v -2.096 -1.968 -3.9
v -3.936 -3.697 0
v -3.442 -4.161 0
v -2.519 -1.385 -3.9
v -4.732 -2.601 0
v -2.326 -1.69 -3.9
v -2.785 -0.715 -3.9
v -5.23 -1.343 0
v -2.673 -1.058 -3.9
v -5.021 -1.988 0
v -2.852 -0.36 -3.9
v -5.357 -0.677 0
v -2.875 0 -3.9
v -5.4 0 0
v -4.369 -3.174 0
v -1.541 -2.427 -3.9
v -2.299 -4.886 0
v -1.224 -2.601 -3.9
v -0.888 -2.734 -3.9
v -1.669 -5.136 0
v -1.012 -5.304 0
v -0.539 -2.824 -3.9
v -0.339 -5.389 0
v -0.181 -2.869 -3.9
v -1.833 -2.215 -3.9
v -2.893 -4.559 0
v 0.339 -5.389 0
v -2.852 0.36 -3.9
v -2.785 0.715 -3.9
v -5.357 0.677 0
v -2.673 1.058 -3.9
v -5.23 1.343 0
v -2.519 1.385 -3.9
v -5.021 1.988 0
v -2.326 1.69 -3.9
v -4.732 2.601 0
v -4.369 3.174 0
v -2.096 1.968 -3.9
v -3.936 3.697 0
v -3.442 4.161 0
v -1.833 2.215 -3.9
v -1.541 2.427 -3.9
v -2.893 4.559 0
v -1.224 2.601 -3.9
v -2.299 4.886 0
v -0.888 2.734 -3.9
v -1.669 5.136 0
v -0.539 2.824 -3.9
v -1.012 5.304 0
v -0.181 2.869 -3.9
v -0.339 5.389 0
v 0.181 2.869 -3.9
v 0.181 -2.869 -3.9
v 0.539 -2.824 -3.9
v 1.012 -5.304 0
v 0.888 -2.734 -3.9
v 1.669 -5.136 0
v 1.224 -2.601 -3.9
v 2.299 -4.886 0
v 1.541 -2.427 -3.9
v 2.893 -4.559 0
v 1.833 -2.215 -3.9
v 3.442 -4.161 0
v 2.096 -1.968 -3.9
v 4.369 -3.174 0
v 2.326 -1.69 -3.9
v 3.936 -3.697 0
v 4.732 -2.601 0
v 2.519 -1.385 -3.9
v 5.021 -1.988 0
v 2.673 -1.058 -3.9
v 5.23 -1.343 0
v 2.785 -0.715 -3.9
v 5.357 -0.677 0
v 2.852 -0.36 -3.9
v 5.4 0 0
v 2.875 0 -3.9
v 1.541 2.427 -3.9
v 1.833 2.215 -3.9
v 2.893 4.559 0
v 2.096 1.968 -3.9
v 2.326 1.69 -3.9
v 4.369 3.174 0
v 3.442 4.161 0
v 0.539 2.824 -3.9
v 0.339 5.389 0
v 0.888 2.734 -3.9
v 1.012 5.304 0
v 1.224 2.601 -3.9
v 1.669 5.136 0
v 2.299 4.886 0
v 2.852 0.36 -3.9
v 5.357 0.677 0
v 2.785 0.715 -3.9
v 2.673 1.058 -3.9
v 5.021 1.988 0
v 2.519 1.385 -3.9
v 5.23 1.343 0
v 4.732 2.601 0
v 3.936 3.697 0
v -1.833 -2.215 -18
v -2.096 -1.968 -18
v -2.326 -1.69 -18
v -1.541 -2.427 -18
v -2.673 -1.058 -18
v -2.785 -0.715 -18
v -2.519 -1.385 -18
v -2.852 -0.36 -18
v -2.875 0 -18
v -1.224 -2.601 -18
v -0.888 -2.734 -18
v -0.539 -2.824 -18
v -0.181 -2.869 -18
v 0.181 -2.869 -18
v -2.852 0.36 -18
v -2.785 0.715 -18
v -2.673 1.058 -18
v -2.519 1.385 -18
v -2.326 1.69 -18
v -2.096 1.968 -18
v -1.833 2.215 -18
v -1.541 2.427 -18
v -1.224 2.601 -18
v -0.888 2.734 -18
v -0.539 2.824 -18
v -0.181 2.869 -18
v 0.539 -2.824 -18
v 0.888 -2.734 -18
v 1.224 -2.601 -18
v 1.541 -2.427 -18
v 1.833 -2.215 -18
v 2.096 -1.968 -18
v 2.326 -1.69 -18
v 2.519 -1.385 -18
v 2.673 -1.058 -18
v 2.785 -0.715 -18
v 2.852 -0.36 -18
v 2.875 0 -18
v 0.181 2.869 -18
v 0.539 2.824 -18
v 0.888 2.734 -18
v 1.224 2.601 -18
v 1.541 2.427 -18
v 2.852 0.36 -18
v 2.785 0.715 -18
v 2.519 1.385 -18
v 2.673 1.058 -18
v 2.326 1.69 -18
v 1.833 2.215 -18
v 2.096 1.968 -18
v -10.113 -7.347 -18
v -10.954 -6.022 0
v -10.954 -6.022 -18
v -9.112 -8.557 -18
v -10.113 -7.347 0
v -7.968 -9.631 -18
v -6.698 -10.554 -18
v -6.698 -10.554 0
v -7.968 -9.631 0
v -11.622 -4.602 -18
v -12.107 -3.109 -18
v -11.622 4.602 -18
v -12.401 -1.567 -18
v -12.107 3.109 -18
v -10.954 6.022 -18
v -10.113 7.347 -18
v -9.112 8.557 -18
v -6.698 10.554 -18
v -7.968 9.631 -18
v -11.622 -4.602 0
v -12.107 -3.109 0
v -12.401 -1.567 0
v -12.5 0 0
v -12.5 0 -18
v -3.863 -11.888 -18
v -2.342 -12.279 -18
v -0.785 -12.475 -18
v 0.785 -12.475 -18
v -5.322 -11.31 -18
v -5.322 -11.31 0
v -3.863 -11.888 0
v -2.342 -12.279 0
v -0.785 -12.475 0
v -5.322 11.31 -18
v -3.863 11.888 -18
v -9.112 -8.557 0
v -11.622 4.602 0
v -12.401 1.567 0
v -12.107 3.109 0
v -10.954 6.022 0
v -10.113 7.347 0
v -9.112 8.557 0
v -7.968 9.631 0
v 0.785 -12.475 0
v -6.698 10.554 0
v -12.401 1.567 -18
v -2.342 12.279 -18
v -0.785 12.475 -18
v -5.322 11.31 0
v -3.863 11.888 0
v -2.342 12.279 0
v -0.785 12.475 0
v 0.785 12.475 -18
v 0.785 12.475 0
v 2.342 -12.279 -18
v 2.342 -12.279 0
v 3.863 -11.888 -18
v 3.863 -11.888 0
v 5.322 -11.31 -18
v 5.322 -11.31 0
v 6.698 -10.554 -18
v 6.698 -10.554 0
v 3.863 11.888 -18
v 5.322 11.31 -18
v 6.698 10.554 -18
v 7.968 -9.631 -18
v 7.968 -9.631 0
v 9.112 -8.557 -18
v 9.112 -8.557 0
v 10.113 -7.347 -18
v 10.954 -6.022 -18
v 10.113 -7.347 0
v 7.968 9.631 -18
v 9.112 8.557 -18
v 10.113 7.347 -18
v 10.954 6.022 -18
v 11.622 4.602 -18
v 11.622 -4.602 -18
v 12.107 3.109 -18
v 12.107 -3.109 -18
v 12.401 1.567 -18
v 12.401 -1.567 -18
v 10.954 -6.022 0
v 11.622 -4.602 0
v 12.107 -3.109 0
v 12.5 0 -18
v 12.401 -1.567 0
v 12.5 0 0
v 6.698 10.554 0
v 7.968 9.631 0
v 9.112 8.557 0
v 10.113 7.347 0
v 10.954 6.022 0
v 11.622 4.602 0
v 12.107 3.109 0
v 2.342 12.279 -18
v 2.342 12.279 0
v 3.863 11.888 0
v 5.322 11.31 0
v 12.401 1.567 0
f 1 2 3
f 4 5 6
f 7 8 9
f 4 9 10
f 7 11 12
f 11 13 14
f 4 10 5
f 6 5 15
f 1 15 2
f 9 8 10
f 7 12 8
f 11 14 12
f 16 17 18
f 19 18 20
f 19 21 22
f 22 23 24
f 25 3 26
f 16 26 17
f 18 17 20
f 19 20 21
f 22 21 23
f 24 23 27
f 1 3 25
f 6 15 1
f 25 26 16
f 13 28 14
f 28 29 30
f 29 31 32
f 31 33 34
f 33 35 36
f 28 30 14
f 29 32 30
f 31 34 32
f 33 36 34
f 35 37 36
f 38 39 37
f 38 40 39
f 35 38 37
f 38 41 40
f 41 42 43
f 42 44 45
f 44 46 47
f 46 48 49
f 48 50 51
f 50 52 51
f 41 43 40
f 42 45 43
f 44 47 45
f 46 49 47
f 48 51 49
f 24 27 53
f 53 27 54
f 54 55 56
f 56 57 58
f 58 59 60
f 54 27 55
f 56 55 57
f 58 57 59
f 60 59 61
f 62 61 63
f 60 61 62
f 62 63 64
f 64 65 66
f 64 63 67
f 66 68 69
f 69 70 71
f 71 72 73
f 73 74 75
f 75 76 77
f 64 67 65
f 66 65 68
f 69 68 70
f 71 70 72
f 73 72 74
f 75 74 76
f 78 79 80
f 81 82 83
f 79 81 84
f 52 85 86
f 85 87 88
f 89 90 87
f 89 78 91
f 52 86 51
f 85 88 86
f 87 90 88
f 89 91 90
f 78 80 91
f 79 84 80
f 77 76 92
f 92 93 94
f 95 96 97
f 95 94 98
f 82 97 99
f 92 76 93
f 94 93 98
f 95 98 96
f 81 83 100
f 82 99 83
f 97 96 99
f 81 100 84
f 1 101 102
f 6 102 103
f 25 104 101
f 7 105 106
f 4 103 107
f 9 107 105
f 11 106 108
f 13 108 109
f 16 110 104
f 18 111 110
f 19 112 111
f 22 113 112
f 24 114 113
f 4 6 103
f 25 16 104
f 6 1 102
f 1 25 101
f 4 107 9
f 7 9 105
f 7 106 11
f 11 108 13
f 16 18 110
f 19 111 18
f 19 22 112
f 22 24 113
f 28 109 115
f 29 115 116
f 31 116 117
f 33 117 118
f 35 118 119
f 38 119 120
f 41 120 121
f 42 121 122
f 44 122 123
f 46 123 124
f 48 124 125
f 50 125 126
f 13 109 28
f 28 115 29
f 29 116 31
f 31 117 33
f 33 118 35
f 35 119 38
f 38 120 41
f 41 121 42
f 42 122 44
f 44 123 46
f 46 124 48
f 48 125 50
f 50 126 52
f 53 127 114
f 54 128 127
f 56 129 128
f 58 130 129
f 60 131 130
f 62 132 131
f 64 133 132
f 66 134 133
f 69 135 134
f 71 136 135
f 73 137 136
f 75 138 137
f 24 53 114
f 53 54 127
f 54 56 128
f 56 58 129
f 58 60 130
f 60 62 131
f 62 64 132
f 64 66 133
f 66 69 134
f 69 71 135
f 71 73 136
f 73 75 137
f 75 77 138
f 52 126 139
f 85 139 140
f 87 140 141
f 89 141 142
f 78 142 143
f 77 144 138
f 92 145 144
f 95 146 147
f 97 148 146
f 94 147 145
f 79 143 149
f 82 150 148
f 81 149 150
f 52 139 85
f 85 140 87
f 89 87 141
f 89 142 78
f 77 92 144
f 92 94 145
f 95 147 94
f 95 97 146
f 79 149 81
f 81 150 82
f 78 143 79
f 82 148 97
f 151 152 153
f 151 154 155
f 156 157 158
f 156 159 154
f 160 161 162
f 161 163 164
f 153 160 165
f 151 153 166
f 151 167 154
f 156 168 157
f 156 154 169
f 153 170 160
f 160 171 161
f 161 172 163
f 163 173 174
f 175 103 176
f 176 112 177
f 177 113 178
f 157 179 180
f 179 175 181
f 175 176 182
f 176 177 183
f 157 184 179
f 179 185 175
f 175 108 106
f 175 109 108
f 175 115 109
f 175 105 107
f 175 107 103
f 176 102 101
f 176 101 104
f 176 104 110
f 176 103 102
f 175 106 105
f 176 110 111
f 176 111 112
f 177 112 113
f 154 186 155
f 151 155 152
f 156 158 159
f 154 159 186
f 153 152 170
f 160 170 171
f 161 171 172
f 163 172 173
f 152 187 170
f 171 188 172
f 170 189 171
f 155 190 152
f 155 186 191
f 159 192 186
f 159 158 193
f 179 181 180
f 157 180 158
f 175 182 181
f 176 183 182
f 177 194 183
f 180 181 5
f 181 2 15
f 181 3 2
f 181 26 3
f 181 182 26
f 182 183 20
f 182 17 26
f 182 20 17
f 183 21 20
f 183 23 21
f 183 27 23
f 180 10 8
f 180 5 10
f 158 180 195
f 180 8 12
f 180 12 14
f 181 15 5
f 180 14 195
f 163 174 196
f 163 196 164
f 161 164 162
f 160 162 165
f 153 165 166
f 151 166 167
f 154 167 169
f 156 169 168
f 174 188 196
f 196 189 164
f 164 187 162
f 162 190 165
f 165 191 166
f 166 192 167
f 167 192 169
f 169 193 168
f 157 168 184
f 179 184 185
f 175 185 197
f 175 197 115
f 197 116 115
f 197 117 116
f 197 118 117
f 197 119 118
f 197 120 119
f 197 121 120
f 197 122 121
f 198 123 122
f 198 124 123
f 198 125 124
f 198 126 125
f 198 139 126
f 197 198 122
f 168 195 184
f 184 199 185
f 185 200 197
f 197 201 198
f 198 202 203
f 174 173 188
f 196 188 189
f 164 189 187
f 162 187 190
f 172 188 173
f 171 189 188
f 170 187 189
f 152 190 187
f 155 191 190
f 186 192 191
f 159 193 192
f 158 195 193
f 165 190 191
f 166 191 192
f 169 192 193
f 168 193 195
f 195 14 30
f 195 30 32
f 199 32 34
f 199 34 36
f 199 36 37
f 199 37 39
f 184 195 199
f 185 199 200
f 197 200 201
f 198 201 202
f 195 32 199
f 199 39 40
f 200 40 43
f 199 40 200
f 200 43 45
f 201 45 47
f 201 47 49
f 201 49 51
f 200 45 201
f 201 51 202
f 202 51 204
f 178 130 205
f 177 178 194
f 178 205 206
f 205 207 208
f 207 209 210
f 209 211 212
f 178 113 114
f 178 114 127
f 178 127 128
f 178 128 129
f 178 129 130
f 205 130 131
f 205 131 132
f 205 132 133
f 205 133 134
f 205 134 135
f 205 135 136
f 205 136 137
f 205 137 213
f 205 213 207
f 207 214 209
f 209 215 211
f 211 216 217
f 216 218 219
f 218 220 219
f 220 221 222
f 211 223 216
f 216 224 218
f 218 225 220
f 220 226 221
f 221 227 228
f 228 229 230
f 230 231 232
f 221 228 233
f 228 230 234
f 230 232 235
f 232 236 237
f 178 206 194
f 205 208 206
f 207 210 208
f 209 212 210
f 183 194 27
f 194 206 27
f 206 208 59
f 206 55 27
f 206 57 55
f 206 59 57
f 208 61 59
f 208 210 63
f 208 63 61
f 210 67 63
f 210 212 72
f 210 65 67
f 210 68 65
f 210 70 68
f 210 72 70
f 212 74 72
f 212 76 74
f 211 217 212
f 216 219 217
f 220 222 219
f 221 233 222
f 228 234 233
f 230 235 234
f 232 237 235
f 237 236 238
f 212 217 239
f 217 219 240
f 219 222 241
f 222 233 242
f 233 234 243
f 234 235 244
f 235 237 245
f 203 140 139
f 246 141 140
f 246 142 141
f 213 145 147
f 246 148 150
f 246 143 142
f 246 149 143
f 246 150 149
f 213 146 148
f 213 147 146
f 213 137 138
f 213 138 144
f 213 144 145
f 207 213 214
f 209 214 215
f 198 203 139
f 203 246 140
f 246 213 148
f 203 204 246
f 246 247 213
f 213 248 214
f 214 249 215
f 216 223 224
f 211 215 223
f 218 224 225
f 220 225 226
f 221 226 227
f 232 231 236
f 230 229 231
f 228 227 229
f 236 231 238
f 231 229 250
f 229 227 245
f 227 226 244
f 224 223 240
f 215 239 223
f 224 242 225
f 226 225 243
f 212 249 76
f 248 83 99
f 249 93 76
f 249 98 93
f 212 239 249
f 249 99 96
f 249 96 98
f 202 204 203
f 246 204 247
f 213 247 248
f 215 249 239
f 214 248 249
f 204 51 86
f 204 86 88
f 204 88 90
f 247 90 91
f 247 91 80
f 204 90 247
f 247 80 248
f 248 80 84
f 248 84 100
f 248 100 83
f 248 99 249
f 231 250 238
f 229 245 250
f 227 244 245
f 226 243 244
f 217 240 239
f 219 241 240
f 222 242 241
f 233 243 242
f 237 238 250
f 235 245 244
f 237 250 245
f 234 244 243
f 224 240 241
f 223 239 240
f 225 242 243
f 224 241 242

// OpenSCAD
$fn = 50;

difference() {
	union() {
		translate(v = [0, 0, -18.0]) {
			cylinder(h = 18, r = 12.5);
		}
		#translate(v = [0, 0, -21.0]) {
			cylinder(h = 21, r = 2.875);
		}
	}
	union() {
		translate(v = [0, 0, 0]) {
			rotate(a = [0, 0, 0]) {
				difference() {
					union() {
						translate(v = [0, 0, -21.0]) {
							cylinder(h = 21, r = 2.6);
						}
						translate(v = [0, 0, -3.9]) {
							cylinder(h = 3.9, r1 = 2.875, r2 = 5.4);
						}
						translate(v = [0, 0, -21.0]) {
							cylinder(h = 21, r = 2.875);
						}
						translate(v = [0, 0, -21.0]) {
							cylinder(h = 21, r = 2.6);
						}
					}
					union();
				}
			}
		}
	}
}
